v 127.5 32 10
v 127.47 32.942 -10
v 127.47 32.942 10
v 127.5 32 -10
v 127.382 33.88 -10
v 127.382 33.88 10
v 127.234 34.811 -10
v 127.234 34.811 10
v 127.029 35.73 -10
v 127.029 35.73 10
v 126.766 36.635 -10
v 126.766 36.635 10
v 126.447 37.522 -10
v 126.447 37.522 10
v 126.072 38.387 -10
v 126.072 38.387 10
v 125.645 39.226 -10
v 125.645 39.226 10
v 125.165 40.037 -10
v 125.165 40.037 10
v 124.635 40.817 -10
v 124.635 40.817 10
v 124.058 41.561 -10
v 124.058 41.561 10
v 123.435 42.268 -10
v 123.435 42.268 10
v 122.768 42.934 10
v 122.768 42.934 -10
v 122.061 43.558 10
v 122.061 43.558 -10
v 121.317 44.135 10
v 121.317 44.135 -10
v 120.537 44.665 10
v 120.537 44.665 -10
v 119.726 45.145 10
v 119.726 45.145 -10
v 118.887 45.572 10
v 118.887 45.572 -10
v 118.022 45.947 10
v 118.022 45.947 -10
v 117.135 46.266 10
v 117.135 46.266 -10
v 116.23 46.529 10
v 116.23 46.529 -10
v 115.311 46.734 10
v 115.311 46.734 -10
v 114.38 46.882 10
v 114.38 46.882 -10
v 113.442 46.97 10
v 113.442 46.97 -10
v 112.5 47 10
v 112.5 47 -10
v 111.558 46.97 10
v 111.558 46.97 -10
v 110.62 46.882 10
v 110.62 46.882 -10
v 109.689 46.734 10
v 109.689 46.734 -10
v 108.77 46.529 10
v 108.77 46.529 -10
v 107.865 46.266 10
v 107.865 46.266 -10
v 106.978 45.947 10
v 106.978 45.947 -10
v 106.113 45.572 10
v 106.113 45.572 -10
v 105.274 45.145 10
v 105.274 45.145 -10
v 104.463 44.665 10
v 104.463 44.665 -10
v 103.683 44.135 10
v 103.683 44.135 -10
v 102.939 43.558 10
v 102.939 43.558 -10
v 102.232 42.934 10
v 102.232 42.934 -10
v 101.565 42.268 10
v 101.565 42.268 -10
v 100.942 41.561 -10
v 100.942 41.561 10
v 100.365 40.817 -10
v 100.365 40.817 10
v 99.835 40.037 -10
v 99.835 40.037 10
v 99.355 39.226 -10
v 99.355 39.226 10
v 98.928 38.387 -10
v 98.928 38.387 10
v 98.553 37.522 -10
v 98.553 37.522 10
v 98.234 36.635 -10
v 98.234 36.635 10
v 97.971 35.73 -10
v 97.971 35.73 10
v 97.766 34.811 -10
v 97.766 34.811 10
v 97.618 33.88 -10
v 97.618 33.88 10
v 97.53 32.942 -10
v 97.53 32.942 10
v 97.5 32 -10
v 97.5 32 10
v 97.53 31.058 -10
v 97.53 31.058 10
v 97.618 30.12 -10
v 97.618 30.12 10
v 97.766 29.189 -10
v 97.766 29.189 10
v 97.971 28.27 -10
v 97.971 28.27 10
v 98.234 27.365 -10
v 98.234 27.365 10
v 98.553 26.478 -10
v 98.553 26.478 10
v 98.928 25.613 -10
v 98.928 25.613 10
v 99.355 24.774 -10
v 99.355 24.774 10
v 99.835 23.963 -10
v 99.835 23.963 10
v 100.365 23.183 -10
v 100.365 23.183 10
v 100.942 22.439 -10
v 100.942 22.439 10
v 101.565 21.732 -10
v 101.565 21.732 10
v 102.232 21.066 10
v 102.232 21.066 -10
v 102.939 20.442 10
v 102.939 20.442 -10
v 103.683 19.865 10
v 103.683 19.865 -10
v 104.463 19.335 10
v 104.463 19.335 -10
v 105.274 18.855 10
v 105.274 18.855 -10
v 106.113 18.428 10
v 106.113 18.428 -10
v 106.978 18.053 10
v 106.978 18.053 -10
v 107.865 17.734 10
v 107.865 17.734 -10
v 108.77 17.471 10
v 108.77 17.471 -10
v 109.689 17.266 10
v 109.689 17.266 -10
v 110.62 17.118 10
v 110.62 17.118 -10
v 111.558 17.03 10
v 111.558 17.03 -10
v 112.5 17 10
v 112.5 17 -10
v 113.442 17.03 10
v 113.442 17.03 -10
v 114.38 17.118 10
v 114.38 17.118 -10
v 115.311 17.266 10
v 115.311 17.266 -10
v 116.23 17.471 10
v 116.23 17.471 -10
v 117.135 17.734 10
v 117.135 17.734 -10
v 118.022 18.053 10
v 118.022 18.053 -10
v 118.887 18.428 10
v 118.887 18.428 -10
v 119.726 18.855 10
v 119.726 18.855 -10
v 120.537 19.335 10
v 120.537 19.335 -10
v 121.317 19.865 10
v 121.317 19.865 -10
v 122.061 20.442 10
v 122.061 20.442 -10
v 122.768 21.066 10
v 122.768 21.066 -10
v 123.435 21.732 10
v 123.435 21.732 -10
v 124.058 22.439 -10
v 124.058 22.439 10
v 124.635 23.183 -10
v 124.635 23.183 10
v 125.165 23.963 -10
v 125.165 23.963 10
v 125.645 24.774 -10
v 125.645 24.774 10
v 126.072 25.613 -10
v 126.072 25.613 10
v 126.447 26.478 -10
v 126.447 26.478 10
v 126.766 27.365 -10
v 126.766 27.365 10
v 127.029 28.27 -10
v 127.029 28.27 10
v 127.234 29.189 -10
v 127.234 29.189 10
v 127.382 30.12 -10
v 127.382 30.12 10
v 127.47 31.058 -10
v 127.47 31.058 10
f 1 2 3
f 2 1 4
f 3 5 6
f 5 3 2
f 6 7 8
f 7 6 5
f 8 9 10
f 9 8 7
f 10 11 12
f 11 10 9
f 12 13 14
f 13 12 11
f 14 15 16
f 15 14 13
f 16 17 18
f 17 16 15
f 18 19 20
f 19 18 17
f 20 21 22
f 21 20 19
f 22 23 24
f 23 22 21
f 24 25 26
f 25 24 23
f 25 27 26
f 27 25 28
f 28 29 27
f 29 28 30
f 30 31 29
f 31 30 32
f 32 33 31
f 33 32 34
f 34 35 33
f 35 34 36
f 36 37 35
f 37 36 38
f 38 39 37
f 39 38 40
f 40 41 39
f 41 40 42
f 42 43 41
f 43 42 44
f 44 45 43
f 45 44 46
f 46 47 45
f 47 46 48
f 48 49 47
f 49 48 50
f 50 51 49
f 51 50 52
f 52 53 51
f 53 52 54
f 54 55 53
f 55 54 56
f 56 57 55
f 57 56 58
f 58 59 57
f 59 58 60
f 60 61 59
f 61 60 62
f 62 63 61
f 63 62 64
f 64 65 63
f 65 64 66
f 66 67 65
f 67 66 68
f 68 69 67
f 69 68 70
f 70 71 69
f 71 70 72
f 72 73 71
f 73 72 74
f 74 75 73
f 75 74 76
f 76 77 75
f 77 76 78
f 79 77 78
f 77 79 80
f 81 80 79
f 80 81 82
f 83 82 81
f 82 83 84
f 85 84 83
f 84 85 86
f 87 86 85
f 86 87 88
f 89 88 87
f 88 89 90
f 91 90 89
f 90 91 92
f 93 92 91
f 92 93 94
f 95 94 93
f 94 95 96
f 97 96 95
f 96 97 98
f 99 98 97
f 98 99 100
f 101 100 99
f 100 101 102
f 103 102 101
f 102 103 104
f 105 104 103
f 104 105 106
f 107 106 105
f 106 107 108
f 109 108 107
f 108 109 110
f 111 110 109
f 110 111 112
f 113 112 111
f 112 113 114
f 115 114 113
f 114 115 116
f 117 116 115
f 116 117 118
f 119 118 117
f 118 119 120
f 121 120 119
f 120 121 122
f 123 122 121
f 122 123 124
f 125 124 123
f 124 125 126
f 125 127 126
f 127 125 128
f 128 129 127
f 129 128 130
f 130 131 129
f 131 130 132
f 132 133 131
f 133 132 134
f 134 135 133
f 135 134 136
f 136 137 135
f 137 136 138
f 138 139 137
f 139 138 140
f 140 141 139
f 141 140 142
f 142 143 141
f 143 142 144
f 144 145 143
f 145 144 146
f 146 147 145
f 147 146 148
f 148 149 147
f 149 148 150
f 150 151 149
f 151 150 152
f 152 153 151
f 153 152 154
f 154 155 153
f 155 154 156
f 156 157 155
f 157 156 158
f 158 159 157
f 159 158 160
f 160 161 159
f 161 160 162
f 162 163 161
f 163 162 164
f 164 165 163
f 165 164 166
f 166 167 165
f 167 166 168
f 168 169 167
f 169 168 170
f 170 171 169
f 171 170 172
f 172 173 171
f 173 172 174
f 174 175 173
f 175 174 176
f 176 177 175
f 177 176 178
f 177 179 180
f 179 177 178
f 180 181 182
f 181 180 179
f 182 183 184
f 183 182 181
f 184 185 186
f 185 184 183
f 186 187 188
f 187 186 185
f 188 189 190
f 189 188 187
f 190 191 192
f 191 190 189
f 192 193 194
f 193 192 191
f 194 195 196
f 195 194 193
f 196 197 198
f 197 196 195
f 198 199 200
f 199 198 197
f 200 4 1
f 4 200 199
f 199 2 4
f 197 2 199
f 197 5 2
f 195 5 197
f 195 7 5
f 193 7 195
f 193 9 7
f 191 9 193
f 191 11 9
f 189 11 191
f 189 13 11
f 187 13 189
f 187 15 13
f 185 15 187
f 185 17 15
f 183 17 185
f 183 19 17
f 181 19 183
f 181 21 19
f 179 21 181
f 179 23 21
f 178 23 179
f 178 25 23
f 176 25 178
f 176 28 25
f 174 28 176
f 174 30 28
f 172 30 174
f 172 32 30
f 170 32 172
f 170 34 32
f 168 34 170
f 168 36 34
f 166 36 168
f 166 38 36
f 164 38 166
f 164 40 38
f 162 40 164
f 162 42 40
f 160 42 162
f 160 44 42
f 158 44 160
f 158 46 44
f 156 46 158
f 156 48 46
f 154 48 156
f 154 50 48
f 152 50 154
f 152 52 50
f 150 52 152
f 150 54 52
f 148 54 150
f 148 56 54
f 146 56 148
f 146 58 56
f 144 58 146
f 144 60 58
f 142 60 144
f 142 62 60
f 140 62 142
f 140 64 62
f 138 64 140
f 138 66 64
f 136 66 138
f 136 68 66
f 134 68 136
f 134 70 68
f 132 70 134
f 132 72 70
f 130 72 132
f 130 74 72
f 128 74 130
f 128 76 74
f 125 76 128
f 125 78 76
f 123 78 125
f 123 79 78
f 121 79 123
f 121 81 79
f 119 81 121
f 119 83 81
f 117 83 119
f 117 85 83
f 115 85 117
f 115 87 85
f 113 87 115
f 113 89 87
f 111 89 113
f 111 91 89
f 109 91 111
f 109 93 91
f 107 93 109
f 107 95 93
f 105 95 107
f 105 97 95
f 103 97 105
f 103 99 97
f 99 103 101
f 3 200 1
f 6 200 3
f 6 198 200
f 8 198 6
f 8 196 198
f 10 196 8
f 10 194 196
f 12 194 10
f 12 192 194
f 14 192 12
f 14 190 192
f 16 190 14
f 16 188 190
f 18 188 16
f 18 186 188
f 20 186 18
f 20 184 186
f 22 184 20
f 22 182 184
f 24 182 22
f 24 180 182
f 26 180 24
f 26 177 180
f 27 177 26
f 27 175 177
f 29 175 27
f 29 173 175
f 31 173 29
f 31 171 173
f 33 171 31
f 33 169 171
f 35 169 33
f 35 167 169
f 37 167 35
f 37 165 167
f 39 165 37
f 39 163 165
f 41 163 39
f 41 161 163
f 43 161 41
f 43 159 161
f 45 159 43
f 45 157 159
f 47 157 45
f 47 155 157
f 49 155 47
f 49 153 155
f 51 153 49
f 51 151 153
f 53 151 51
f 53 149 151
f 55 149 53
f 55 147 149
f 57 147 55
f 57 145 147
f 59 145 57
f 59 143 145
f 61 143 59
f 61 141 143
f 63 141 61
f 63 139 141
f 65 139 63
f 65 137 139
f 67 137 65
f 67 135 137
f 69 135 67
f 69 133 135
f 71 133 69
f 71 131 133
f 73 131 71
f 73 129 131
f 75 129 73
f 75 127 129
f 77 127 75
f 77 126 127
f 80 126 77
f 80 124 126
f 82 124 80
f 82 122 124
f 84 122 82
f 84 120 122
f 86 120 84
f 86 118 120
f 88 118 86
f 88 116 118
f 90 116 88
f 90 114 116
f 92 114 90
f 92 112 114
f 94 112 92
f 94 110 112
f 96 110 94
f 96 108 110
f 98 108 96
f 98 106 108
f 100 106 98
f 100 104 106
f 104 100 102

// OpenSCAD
$fn = 100;

translate([112.5, 32, 0])
rotate([0, 0, 0])
cylinder(20, 15, 15, true);
